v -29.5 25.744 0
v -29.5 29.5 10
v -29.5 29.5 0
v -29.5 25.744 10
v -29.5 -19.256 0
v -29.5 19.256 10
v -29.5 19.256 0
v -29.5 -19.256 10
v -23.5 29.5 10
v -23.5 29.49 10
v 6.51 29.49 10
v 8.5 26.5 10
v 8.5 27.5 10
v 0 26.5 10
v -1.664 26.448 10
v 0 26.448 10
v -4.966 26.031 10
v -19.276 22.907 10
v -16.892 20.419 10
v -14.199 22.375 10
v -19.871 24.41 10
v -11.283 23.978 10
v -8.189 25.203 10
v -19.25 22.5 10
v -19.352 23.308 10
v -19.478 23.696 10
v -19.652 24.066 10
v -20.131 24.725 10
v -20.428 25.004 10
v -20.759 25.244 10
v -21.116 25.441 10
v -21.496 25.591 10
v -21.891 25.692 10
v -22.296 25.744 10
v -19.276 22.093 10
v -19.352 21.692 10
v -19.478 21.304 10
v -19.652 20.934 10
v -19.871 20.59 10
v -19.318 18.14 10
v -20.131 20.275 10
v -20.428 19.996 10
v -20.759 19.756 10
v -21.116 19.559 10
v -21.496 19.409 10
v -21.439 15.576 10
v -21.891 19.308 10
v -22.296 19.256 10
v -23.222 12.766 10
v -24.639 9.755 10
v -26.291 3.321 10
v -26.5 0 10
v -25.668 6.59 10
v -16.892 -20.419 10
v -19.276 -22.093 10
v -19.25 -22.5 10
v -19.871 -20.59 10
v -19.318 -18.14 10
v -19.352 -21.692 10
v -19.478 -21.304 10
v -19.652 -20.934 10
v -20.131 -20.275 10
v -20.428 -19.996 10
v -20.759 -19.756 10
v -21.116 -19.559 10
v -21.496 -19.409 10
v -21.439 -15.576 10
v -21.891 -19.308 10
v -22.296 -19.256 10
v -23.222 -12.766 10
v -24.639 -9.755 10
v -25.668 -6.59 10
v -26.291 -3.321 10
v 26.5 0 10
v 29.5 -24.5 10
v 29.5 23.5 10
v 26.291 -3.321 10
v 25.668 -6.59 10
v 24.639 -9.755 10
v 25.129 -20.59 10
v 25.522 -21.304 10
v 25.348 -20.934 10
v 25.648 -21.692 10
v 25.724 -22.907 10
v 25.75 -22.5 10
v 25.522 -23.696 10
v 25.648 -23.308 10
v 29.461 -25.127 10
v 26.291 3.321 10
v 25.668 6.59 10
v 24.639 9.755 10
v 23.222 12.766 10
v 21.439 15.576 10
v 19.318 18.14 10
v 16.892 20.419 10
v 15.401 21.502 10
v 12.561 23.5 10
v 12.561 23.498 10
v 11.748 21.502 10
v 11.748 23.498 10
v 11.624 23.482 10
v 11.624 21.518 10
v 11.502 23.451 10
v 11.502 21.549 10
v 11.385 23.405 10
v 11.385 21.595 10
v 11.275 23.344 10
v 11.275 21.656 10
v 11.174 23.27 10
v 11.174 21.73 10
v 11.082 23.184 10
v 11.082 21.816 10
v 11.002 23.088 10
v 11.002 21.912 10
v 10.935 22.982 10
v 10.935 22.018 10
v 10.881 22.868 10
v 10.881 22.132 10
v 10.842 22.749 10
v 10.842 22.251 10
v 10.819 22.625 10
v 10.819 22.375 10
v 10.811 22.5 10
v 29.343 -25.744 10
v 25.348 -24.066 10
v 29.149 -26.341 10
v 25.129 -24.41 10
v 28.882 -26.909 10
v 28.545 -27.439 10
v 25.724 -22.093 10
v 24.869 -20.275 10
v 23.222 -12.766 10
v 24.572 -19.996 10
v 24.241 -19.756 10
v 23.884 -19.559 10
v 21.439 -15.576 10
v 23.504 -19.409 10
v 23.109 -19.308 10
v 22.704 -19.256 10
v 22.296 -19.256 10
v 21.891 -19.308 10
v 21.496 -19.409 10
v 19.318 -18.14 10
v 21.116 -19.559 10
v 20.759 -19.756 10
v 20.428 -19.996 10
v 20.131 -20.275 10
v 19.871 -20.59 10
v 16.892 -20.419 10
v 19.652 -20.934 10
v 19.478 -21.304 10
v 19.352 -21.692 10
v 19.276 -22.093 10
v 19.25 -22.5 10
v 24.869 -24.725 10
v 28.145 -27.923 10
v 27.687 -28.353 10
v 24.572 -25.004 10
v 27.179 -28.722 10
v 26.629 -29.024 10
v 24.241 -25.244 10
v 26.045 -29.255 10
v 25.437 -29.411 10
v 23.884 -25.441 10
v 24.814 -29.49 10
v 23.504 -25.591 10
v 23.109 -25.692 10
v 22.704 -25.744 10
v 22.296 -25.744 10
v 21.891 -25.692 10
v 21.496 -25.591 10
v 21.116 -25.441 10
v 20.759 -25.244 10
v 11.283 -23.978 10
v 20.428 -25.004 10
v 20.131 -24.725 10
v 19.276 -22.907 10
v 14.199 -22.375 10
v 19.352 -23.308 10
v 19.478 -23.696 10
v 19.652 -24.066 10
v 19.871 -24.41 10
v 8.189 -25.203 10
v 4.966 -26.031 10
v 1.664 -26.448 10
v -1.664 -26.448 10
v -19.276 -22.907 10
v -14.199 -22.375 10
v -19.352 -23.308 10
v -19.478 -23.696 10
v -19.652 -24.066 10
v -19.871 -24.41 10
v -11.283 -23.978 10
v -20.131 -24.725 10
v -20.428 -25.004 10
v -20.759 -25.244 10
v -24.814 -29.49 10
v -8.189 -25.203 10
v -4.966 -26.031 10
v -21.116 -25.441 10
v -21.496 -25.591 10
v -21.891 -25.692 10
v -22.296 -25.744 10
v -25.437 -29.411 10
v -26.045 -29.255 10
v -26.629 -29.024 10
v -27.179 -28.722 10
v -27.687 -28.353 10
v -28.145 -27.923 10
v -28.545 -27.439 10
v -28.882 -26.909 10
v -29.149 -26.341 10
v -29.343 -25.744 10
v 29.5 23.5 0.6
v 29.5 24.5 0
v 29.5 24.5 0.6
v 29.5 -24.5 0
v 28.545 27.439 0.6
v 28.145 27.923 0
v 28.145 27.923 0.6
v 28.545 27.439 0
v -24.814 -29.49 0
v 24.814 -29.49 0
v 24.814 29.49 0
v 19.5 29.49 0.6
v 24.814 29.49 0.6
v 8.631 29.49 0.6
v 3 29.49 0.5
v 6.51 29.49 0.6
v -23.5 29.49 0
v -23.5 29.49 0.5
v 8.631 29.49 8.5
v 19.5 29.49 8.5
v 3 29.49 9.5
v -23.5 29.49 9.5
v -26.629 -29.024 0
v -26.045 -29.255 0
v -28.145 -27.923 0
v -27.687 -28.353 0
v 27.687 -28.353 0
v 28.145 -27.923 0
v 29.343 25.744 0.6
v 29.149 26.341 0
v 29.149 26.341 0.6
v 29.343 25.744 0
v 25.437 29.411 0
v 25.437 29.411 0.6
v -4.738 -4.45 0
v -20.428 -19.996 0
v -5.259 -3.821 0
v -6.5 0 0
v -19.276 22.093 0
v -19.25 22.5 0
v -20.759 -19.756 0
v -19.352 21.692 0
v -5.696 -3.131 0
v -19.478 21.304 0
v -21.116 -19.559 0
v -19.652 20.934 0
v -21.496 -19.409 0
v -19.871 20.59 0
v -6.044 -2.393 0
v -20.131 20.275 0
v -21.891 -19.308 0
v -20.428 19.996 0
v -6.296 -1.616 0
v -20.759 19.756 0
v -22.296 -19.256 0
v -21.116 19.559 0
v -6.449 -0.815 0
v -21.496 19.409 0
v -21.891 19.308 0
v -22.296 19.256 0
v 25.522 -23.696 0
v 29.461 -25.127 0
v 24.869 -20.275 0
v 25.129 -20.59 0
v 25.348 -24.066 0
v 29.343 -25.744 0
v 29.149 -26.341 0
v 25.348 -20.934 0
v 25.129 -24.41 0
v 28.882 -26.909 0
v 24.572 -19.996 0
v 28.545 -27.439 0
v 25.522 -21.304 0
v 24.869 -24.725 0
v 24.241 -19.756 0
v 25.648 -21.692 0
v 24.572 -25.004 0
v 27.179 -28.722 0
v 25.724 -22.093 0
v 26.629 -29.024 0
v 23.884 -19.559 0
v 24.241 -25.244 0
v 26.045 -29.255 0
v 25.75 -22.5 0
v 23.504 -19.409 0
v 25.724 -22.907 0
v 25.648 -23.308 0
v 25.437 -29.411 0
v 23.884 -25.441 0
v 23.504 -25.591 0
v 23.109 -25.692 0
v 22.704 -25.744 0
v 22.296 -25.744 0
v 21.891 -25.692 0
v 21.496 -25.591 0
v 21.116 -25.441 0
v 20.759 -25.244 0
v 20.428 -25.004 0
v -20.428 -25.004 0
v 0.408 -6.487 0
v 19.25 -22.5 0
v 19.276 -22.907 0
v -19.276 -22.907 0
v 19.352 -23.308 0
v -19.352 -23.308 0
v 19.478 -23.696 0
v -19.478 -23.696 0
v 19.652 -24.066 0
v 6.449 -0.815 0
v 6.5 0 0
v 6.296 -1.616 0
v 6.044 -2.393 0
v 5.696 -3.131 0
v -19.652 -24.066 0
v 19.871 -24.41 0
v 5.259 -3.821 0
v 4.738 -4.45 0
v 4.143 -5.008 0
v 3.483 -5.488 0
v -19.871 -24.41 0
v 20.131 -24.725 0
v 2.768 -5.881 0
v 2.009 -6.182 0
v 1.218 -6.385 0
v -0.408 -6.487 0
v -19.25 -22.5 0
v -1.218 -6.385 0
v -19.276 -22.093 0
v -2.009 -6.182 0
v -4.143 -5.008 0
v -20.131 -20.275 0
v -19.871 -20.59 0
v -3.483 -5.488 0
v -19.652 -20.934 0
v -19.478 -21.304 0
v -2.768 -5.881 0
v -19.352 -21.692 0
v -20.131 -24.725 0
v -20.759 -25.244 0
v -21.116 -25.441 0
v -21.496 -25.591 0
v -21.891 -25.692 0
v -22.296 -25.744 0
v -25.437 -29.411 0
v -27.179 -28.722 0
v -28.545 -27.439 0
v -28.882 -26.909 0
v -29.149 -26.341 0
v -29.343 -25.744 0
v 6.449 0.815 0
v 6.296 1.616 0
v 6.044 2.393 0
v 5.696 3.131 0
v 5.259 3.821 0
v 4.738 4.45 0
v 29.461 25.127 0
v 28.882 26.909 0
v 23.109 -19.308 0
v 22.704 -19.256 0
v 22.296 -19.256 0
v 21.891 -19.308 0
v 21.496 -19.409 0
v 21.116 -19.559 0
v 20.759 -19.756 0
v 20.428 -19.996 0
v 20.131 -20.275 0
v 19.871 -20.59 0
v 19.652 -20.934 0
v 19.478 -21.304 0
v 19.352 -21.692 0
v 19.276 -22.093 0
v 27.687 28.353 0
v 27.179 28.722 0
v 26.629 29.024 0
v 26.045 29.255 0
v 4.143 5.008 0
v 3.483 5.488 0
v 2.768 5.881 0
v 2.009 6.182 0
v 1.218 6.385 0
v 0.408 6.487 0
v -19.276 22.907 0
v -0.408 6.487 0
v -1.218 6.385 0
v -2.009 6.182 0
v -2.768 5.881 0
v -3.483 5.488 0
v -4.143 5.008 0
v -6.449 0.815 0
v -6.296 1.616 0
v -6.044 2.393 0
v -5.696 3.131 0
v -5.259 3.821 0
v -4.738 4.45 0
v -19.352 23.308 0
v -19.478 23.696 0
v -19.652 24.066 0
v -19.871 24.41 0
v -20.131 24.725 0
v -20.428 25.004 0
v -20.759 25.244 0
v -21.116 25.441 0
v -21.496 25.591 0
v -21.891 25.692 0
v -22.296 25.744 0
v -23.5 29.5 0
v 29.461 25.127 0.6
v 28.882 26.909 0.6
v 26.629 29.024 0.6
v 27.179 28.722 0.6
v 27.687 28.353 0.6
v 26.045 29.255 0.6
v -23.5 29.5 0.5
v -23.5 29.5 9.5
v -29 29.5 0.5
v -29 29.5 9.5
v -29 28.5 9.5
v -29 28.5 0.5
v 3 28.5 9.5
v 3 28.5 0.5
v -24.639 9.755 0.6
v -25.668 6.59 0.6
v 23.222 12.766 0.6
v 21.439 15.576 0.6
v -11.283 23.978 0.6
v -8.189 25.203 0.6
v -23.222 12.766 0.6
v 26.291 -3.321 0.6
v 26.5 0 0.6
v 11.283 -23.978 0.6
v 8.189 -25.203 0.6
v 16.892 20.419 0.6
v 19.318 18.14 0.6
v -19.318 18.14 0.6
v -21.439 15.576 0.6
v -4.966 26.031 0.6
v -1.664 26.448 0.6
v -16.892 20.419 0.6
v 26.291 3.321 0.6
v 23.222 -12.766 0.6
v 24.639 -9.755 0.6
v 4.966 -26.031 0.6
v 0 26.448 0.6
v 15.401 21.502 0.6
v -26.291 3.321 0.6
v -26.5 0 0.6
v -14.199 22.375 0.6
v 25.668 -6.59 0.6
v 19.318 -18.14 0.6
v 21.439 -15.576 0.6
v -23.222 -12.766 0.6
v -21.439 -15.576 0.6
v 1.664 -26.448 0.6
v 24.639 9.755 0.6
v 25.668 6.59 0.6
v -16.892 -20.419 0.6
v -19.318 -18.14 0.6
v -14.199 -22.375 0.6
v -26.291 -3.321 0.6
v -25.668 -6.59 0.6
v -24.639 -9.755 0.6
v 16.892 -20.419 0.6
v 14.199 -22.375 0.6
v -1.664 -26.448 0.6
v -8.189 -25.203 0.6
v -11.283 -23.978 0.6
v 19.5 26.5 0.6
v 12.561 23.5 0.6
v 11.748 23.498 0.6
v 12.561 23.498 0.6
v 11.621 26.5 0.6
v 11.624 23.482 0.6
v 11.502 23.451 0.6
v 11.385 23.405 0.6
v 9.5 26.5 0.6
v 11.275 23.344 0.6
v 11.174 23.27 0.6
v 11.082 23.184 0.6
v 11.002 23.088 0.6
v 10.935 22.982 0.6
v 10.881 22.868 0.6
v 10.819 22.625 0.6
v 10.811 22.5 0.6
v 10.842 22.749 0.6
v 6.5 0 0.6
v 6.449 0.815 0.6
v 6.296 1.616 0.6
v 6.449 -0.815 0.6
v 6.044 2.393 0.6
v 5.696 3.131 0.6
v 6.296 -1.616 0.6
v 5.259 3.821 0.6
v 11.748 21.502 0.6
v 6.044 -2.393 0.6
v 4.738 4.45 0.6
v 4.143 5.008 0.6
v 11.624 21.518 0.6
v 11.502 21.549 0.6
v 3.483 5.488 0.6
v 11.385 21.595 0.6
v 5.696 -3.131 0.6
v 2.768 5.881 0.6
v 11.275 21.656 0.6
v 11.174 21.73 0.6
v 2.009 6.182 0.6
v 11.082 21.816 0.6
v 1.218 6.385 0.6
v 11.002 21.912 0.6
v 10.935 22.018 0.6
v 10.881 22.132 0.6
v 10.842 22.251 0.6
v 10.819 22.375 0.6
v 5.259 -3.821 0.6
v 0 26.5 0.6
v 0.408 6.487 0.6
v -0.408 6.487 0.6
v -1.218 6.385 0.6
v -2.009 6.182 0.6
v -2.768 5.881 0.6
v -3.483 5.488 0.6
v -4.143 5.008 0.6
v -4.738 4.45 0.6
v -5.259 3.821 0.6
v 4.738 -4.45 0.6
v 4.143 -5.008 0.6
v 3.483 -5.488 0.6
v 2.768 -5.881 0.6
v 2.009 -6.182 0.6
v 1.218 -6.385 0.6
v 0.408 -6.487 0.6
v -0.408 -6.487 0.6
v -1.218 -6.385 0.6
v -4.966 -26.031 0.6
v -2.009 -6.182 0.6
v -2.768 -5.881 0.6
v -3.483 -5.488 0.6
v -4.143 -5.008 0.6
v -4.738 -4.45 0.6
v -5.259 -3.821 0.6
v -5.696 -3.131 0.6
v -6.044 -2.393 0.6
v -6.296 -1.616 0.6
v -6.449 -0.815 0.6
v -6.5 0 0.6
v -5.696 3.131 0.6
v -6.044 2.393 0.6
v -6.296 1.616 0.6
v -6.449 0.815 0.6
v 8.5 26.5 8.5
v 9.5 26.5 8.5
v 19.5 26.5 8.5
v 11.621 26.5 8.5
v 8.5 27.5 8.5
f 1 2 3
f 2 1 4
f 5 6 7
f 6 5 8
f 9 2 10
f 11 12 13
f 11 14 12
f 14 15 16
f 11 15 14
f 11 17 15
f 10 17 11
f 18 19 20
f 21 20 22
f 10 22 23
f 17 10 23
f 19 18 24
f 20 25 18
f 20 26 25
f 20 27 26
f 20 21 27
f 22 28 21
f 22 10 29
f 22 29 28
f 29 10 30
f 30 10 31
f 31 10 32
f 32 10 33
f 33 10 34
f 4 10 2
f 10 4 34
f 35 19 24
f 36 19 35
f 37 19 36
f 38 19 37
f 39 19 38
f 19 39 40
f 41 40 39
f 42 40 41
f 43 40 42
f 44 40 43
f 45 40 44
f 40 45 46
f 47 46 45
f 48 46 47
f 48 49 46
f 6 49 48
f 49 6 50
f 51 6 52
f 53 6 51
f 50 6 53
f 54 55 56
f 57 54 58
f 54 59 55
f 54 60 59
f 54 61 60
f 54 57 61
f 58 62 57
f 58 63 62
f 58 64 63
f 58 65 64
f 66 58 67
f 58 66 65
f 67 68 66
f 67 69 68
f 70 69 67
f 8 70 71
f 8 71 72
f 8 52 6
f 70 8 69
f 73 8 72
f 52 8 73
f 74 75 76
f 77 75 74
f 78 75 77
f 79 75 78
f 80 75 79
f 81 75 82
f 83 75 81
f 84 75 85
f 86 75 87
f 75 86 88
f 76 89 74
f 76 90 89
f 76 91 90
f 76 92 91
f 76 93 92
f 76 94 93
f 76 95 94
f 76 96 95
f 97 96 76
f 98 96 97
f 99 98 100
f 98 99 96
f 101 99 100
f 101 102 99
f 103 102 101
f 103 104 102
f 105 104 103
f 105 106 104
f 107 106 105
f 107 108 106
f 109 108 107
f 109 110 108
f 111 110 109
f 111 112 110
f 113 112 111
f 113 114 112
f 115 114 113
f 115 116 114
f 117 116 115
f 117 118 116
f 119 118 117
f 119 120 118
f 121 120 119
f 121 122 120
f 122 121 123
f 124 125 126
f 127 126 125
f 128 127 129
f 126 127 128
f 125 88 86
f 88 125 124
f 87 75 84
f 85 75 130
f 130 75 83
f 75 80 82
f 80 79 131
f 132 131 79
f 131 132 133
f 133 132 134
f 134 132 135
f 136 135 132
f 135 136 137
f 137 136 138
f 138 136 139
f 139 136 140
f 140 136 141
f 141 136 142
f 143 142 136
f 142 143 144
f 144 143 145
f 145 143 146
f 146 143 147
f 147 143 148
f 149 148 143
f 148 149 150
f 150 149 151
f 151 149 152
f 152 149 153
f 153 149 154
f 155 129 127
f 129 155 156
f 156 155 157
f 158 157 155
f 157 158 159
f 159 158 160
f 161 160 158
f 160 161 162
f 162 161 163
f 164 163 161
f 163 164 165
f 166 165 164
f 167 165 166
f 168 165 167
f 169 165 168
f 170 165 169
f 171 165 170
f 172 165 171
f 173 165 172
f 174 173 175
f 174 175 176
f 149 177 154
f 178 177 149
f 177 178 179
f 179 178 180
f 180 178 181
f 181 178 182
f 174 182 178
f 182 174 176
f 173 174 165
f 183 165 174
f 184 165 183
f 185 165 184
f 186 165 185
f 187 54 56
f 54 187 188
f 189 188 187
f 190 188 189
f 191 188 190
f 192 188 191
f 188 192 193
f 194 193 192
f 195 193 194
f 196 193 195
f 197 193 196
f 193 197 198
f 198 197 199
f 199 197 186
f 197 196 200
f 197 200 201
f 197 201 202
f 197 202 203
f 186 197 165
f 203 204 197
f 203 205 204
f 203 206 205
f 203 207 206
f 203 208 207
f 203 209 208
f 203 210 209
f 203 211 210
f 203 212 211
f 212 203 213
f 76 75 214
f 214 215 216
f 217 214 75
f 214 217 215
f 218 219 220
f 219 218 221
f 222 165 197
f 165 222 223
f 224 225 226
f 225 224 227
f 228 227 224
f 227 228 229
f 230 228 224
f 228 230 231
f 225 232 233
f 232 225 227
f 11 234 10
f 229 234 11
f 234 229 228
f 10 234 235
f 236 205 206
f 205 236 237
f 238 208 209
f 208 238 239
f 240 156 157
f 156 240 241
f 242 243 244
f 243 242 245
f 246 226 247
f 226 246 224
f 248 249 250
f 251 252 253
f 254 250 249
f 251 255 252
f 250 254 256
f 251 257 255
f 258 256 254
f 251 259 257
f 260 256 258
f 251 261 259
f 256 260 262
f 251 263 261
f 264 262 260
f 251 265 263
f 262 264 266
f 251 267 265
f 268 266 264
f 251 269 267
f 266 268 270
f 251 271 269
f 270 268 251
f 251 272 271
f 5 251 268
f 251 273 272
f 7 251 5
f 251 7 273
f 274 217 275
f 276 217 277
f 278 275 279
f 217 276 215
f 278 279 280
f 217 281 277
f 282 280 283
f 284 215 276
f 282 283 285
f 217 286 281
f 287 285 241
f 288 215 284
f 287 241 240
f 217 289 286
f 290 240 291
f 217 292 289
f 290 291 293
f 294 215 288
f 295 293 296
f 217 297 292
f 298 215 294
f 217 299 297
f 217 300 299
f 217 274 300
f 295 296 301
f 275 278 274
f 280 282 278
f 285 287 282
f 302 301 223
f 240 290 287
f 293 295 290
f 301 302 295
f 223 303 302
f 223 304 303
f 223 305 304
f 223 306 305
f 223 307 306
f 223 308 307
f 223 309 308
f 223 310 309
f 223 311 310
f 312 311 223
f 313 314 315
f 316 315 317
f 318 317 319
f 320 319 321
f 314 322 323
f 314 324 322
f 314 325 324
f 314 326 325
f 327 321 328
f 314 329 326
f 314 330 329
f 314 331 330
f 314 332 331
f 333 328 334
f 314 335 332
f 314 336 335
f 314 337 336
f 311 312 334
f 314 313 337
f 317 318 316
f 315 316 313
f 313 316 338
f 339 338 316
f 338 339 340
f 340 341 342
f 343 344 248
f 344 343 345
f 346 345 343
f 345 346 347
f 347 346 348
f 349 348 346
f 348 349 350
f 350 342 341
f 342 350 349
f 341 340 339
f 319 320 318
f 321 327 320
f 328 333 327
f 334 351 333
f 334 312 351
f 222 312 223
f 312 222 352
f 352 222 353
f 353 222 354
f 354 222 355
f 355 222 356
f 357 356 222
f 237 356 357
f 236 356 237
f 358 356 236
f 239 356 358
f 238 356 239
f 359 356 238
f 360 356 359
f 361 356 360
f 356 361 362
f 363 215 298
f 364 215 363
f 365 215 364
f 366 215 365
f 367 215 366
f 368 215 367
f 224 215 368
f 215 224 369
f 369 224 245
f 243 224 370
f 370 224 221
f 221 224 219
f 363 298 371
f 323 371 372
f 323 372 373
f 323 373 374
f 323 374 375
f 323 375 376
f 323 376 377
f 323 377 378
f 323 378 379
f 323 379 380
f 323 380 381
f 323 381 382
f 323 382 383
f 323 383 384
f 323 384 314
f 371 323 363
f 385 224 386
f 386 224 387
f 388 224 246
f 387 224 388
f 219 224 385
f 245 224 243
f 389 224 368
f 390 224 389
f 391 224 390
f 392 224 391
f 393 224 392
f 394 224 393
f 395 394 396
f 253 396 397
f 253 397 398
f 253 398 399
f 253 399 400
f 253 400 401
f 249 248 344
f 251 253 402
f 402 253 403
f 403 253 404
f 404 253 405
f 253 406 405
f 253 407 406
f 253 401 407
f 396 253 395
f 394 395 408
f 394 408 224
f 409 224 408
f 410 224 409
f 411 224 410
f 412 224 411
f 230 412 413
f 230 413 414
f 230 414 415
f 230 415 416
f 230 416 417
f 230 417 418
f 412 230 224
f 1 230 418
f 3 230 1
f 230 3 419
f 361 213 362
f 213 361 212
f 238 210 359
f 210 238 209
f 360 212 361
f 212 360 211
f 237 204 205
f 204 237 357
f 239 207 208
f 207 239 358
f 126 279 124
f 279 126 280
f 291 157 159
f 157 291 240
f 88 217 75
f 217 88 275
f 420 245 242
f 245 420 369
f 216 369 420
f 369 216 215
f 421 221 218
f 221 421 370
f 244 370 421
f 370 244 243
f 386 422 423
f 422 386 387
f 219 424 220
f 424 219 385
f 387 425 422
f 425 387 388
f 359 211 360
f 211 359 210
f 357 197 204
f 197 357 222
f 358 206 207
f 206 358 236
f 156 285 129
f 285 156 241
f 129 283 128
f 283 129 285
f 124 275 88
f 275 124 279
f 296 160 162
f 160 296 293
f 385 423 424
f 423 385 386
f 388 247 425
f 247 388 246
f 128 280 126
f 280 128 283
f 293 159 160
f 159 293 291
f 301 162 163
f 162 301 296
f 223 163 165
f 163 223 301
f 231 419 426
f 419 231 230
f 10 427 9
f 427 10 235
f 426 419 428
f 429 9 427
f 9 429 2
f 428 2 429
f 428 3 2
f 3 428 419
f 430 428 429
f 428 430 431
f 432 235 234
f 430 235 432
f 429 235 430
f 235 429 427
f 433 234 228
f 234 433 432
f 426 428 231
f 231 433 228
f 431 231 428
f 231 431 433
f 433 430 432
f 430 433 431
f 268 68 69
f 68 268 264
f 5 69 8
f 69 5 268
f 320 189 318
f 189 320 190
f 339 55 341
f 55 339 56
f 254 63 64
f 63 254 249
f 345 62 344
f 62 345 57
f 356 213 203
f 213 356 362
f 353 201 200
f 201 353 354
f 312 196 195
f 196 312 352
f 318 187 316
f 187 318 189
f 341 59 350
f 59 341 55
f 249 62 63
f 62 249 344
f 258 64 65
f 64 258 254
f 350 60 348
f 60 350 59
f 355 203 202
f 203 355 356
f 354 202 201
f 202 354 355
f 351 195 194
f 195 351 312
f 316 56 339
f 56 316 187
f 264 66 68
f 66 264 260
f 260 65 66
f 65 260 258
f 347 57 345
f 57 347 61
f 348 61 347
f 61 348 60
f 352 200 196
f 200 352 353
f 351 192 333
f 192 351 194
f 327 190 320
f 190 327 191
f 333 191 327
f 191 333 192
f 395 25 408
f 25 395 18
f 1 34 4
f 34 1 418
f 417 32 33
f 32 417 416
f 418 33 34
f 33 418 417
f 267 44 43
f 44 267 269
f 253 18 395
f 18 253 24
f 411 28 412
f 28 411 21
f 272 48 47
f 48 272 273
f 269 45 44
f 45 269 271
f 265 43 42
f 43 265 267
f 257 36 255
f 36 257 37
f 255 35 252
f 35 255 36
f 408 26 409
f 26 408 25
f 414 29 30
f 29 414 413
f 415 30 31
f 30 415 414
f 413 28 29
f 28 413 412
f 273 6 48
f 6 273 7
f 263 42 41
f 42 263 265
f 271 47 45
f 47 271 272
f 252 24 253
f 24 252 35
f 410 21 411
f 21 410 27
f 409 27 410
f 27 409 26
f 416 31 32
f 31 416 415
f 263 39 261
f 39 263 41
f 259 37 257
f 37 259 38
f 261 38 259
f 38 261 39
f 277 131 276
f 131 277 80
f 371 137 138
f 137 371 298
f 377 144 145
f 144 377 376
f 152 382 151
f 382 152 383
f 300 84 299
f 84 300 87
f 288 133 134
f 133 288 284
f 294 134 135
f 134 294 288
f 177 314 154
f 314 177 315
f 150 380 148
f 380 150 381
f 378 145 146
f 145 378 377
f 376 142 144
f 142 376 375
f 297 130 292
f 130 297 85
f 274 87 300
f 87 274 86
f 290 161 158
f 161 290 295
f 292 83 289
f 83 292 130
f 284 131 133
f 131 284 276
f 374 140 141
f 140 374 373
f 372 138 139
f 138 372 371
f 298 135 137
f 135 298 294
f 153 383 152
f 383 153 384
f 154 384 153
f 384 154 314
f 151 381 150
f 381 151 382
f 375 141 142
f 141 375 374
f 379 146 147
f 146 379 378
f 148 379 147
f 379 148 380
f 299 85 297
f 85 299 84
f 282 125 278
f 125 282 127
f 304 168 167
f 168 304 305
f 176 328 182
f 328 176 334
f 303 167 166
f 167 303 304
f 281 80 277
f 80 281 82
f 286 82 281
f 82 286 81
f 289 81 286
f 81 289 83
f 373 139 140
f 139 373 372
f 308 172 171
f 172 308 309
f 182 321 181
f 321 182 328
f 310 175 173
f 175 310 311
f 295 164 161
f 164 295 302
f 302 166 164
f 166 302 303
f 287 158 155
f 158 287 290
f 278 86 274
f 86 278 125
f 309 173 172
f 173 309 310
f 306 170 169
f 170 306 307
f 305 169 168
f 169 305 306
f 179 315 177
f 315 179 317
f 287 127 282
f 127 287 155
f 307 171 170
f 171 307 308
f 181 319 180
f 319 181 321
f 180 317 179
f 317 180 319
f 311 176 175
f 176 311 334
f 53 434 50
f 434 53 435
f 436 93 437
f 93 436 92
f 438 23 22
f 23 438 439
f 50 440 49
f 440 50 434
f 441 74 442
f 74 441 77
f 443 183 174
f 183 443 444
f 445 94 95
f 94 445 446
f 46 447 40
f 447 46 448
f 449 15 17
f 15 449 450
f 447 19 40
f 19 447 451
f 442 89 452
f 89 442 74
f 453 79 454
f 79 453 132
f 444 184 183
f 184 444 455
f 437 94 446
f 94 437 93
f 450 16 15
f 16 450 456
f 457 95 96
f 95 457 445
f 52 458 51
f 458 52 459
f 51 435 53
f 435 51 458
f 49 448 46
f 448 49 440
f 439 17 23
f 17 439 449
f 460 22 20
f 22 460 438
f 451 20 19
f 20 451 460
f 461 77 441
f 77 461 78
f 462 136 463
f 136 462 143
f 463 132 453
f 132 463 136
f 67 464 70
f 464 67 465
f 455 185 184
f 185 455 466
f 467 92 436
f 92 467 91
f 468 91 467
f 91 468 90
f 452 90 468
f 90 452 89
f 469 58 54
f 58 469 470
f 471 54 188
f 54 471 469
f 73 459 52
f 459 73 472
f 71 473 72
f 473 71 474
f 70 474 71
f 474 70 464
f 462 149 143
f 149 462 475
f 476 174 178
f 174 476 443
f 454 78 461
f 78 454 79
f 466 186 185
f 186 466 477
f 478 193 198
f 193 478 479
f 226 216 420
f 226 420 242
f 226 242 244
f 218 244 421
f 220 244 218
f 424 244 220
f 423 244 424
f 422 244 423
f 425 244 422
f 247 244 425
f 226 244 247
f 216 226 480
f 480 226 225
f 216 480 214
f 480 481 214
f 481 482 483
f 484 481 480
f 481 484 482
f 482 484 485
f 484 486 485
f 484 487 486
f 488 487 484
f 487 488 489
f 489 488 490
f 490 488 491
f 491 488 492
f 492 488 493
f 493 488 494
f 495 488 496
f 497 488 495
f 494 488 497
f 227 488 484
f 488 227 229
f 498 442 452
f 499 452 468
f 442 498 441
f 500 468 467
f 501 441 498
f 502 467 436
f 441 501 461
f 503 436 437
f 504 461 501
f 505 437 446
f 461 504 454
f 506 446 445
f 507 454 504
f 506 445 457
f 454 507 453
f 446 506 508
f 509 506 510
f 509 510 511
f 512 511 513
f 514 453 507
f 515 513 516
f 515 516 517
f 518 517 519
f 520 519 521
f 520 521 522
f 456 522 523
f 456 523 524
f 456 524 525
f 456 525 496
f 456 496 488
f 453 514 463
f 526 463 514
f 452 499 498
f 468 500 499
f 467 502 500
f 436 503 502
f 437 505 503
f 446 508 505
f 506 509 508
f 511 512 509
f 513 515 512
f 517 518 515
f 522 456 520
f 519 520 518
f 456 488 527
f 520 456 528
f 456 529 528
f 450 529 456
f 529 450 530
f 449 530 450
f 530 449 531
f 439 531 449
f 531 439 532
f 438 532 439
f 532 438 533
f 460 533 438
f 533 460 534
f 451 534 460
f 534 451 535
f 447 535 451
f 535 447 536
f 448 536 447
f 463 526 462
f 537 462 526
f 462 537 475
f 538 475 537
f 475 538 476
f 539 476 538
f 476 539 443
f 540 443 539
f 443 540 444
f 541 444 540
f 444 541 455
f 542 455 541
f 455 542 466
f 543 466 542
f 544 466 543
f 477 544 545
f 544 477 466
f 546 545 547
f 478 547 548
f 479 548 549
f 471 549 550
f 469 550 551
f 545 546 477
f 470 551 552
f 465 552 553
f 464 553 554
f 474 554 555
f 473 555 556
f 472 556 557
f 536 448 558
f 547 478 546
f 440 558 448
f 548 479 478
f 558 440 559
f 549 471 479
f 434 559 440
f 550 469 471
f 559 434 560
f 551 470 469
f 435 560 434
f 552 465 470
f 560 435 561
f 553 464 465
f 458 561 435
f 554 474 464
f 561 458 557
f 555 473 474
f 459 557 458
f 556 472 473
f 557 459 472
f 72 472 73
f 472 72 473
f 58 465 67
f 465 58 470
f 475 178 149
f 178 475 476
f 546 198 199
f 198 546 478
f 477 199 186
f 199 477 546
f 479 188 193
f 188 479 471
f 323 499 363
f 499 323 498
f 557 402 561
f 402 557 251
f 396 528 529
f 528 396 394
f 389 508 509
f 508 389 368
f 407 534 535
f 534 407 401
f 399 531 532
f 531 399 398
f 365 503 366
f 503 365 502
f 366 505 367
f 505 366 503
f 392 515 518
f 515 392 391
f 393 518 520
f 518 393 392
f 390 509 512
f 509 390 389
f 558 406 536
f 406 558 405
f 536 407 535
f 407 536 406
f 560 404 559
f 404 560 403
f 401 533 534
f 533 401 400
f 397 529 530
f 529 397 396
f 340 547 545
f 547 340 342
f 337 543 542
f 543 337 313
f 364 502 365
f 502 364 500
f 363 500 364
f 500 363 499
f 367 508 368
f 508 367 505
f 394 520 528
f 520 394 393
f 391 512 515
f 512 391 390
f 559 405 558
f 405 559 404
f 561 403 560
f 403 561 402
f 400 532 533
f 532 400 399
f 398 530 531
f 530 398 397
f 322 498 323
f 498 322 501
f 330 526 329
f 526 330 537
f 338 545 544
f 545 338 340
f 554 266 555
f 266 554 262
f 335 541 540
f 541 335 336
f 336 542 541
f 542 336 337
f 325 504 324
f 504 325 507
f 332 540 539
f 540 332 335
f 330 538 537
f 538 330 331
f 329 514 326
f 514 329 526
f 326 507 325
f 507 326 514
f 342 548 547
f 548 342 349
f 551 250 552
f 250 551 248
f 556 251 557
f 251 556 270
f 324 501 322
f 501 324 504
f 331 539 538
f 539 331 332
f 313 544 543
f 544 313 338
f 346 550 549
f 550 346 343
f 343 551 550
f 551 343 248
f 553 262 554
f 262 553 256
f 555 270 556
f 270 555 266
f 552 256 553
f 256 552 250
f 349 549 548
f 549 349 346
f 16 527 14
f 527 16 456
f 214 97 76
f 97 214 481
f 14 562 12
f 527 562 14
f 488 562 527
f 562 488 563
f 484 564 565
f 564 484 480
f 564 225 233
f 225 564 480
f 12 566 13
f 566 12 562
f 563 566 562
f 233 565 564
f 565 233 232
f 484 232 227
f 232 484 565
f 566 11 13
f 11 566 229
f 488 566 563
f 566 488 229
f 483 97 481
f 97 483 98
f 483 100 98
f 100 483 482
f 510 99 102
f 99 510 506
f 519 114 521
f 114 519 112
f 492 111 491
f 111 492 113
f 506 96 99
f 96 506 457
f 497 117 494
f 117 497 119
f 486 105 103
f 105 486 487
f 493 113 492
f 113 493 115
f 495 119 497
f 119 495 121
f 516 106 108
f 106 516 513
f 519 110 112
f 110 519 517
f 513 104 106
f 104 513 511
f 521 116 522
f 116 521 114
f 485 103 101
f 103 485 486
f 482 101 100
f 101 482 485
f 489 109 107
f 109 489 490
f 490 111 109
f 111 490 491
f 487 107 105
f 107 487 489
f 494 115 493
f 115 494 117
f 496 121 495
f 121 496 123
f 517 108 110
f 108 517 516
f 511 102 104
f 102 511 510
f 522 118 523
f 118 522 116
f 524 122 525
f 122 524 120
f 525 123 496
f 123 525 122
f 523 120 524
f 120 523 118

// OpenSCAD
$fn = 50;


union() {
	difference() {
		union() {
			translate(v = [0, 0, 0]) {
				rotate(a = [0, 0, 0]) {
					hull() {
						translate(v = [-24.5000000000, 24.5000000000, 0]) {
							rotate(a = [0, 0, 0]) {
								translate(v = [0, 0, 0]) {
									rotate(a = [0, 0, 0]) {
										cylinder(h = 10, r = 5);
									}
								}
							}
						}
						translate(v = [24.5000000000, 24.5000000000, 0]) {
							rotate(a = [0, 0, 0]) {
								translate(v = [0, 0, 0]) {
									rotate(a = [0, 0, 0]) {
										cylinder(h = 10, r = 5);
									}
								}
							}
						}
						translate(v = [-24.5000000000, -24.5000000000, 0]) {
							rotate(a = [0, 0, 0]) {
								translate(v = [0, 0, 0]) {
									rotate(a = [0, 0, 0]) {
										cylinder(h = 10, r = 5);
									}
								}
							}
						}
						translate(v = [24.5000000000, -24.5000000000, 0]) {
							rotate(a = [0, 0, 0]) {
								translate(v = [0, 0, 0]) {
									rotate(a = [0, 0, 0]) {
										cylinder(h = 10, r = 5);
									}
								}
							}
						}
					}
				}
			}
			translate(v = [-29.5000000000, 23.5000000000, 0]) {
				rotate(a = [0, 0, 0]) {
					cube(size = [6, 6, 10]);
				}
			}
		}
		union() {
			#translate(v = [-29.0000000000, 28.5000000000, 0.5000000000]) {
				rotate(a = [0, 0, 0]) {
					cube(size = [32, 1, 9.0000000000]);
				}
			}
			translate(v = [-30.0000000000, -22.5000000000, -125]) {
				rotate(a = [0, 0, 0]) {
					hull() {
						translate(v = [7.5000000000, 0, 0]) {
							rotate(a = [0, 0, 0]) {
								translate(v = [0, 0, 0]) {
									rotate(a = [0, 0, 0]) {
										cylinder(h = 250, r = 3.2500000000);
									}
								}
							}
						}
						translate(v = [-7.5000000000, 0, 0]) {
							rotate(a = [0, 0, 0]) {
								translate(v = [0, 0, 0]) {
									rotate(a = [0, 0, 0]) {
										cylinder(h = 250, r = 3.2500000000);
									}
								}
							}
						}
					}
				}
			}
			translate(v = [-30.0000000000, 22.5000000000, -125]) {
				rotate(a = [0, 0, 0]) {
					hull() {
						translate(v = [7.5000000000, 0, 0]) {
							rotate(a = [0, 0, 0]) {
								translate(v = [0, 0, 0]) {
									rotate(a = [0, 0, 0]) {
										cylinder(h = 250, r = 3.2500000000);
									}
								}
							}
						}
						translate(v = [-7.5000000000, 0, 0]) {
							rotate(a = [0, 0, 0]) {
								translate(v = [0, 0, 0]) {
									rotate(a = [0, 0, 0]) {
										cylinder(h = 250, r = 3.2500000000);
									}
								}
							}
						}
					}
				}
			}
			translate(v = [22.5000000000, -22.5000000000, -125.0000000000]) {
				rotate(a = [0, 0, 0]) {
					cylinder(h = 250, r = 3.2500000000);
				}
			}
			translate(v = [0, 0, 0.6000000000]) {
				rotate(a = [0, 0, 0]) {
					cylinder(h = 12.4000000000, r = 26.5000000000);
				}
			}
			translate(v = [0, 0, -5.0000000000]) {
				rotate(a = [0, 0, 0]) {
					cylinder(h = 10, r = 6.5000000000);
				}
			}
			translate(v = [0.0000000000, 23.5000000000, 0.6000000000]) {
				rotate(a = [0, 0, 0]) {
					cube(size = [29.5000000000, 3, 12.4000000000]);
				}
			}
			translate(v = [19.5000000000, 23.5000000000, 0.6000000000]) {
				rotate(a = [0, 0, 0]) {
					cube(size = [10, 6, 12.4000000000]);
				}
			}
			translate(v = [8.5000000000, 23.5000000000, 8.5000000000]) {
				rotate(a = [0, 0, 0]) {
					cube(size = [21, 6, 1.5000000000]);
				}
			}
			translate(v = [5.7500000000, 30.2500000000, 0.6000000000]) {
				rotate(a = [0, 0, -45]) {
					cube(size = [7.5000000000, 1.5000000000, 12.4000000000]);
				}
			}
			translate(v = [5.0610000000, 21.5000000000, 0.6000000000]) {
				rotate(a = [0, 0, 0]) {
					cube(size = [7.5000000000, 2, 9.4000000000]);
				}
			}
		}
	}
	union() {
		translate(v = [14.3110000000, 22.5000000000, 0]) {
			rotate(a = [0, 0, 0]) {
				hull() {
					translate(v = [2.5000000000, 0, 0]) {
						rotate(a = [0, 0, 0]) {
							#translate(v = [0, 0, 0]) {
								rotate(a = [0, 0, 0]) {
									cylinder(h = 10, r = 1.0000000000);
								}
							}
						}
					}
					translate(v = [-2.5000000000, 0, 0]) {
						rotate(a = [0, 0, 0]) {
							#translate(v = [0, 0, 0]) {
								rotate(a = [0, 0, 0]) {
									cylinder(h = 10, r = 1.0000000000);
								}
							}
						}
					}
				}
			}
		}
	}
}
